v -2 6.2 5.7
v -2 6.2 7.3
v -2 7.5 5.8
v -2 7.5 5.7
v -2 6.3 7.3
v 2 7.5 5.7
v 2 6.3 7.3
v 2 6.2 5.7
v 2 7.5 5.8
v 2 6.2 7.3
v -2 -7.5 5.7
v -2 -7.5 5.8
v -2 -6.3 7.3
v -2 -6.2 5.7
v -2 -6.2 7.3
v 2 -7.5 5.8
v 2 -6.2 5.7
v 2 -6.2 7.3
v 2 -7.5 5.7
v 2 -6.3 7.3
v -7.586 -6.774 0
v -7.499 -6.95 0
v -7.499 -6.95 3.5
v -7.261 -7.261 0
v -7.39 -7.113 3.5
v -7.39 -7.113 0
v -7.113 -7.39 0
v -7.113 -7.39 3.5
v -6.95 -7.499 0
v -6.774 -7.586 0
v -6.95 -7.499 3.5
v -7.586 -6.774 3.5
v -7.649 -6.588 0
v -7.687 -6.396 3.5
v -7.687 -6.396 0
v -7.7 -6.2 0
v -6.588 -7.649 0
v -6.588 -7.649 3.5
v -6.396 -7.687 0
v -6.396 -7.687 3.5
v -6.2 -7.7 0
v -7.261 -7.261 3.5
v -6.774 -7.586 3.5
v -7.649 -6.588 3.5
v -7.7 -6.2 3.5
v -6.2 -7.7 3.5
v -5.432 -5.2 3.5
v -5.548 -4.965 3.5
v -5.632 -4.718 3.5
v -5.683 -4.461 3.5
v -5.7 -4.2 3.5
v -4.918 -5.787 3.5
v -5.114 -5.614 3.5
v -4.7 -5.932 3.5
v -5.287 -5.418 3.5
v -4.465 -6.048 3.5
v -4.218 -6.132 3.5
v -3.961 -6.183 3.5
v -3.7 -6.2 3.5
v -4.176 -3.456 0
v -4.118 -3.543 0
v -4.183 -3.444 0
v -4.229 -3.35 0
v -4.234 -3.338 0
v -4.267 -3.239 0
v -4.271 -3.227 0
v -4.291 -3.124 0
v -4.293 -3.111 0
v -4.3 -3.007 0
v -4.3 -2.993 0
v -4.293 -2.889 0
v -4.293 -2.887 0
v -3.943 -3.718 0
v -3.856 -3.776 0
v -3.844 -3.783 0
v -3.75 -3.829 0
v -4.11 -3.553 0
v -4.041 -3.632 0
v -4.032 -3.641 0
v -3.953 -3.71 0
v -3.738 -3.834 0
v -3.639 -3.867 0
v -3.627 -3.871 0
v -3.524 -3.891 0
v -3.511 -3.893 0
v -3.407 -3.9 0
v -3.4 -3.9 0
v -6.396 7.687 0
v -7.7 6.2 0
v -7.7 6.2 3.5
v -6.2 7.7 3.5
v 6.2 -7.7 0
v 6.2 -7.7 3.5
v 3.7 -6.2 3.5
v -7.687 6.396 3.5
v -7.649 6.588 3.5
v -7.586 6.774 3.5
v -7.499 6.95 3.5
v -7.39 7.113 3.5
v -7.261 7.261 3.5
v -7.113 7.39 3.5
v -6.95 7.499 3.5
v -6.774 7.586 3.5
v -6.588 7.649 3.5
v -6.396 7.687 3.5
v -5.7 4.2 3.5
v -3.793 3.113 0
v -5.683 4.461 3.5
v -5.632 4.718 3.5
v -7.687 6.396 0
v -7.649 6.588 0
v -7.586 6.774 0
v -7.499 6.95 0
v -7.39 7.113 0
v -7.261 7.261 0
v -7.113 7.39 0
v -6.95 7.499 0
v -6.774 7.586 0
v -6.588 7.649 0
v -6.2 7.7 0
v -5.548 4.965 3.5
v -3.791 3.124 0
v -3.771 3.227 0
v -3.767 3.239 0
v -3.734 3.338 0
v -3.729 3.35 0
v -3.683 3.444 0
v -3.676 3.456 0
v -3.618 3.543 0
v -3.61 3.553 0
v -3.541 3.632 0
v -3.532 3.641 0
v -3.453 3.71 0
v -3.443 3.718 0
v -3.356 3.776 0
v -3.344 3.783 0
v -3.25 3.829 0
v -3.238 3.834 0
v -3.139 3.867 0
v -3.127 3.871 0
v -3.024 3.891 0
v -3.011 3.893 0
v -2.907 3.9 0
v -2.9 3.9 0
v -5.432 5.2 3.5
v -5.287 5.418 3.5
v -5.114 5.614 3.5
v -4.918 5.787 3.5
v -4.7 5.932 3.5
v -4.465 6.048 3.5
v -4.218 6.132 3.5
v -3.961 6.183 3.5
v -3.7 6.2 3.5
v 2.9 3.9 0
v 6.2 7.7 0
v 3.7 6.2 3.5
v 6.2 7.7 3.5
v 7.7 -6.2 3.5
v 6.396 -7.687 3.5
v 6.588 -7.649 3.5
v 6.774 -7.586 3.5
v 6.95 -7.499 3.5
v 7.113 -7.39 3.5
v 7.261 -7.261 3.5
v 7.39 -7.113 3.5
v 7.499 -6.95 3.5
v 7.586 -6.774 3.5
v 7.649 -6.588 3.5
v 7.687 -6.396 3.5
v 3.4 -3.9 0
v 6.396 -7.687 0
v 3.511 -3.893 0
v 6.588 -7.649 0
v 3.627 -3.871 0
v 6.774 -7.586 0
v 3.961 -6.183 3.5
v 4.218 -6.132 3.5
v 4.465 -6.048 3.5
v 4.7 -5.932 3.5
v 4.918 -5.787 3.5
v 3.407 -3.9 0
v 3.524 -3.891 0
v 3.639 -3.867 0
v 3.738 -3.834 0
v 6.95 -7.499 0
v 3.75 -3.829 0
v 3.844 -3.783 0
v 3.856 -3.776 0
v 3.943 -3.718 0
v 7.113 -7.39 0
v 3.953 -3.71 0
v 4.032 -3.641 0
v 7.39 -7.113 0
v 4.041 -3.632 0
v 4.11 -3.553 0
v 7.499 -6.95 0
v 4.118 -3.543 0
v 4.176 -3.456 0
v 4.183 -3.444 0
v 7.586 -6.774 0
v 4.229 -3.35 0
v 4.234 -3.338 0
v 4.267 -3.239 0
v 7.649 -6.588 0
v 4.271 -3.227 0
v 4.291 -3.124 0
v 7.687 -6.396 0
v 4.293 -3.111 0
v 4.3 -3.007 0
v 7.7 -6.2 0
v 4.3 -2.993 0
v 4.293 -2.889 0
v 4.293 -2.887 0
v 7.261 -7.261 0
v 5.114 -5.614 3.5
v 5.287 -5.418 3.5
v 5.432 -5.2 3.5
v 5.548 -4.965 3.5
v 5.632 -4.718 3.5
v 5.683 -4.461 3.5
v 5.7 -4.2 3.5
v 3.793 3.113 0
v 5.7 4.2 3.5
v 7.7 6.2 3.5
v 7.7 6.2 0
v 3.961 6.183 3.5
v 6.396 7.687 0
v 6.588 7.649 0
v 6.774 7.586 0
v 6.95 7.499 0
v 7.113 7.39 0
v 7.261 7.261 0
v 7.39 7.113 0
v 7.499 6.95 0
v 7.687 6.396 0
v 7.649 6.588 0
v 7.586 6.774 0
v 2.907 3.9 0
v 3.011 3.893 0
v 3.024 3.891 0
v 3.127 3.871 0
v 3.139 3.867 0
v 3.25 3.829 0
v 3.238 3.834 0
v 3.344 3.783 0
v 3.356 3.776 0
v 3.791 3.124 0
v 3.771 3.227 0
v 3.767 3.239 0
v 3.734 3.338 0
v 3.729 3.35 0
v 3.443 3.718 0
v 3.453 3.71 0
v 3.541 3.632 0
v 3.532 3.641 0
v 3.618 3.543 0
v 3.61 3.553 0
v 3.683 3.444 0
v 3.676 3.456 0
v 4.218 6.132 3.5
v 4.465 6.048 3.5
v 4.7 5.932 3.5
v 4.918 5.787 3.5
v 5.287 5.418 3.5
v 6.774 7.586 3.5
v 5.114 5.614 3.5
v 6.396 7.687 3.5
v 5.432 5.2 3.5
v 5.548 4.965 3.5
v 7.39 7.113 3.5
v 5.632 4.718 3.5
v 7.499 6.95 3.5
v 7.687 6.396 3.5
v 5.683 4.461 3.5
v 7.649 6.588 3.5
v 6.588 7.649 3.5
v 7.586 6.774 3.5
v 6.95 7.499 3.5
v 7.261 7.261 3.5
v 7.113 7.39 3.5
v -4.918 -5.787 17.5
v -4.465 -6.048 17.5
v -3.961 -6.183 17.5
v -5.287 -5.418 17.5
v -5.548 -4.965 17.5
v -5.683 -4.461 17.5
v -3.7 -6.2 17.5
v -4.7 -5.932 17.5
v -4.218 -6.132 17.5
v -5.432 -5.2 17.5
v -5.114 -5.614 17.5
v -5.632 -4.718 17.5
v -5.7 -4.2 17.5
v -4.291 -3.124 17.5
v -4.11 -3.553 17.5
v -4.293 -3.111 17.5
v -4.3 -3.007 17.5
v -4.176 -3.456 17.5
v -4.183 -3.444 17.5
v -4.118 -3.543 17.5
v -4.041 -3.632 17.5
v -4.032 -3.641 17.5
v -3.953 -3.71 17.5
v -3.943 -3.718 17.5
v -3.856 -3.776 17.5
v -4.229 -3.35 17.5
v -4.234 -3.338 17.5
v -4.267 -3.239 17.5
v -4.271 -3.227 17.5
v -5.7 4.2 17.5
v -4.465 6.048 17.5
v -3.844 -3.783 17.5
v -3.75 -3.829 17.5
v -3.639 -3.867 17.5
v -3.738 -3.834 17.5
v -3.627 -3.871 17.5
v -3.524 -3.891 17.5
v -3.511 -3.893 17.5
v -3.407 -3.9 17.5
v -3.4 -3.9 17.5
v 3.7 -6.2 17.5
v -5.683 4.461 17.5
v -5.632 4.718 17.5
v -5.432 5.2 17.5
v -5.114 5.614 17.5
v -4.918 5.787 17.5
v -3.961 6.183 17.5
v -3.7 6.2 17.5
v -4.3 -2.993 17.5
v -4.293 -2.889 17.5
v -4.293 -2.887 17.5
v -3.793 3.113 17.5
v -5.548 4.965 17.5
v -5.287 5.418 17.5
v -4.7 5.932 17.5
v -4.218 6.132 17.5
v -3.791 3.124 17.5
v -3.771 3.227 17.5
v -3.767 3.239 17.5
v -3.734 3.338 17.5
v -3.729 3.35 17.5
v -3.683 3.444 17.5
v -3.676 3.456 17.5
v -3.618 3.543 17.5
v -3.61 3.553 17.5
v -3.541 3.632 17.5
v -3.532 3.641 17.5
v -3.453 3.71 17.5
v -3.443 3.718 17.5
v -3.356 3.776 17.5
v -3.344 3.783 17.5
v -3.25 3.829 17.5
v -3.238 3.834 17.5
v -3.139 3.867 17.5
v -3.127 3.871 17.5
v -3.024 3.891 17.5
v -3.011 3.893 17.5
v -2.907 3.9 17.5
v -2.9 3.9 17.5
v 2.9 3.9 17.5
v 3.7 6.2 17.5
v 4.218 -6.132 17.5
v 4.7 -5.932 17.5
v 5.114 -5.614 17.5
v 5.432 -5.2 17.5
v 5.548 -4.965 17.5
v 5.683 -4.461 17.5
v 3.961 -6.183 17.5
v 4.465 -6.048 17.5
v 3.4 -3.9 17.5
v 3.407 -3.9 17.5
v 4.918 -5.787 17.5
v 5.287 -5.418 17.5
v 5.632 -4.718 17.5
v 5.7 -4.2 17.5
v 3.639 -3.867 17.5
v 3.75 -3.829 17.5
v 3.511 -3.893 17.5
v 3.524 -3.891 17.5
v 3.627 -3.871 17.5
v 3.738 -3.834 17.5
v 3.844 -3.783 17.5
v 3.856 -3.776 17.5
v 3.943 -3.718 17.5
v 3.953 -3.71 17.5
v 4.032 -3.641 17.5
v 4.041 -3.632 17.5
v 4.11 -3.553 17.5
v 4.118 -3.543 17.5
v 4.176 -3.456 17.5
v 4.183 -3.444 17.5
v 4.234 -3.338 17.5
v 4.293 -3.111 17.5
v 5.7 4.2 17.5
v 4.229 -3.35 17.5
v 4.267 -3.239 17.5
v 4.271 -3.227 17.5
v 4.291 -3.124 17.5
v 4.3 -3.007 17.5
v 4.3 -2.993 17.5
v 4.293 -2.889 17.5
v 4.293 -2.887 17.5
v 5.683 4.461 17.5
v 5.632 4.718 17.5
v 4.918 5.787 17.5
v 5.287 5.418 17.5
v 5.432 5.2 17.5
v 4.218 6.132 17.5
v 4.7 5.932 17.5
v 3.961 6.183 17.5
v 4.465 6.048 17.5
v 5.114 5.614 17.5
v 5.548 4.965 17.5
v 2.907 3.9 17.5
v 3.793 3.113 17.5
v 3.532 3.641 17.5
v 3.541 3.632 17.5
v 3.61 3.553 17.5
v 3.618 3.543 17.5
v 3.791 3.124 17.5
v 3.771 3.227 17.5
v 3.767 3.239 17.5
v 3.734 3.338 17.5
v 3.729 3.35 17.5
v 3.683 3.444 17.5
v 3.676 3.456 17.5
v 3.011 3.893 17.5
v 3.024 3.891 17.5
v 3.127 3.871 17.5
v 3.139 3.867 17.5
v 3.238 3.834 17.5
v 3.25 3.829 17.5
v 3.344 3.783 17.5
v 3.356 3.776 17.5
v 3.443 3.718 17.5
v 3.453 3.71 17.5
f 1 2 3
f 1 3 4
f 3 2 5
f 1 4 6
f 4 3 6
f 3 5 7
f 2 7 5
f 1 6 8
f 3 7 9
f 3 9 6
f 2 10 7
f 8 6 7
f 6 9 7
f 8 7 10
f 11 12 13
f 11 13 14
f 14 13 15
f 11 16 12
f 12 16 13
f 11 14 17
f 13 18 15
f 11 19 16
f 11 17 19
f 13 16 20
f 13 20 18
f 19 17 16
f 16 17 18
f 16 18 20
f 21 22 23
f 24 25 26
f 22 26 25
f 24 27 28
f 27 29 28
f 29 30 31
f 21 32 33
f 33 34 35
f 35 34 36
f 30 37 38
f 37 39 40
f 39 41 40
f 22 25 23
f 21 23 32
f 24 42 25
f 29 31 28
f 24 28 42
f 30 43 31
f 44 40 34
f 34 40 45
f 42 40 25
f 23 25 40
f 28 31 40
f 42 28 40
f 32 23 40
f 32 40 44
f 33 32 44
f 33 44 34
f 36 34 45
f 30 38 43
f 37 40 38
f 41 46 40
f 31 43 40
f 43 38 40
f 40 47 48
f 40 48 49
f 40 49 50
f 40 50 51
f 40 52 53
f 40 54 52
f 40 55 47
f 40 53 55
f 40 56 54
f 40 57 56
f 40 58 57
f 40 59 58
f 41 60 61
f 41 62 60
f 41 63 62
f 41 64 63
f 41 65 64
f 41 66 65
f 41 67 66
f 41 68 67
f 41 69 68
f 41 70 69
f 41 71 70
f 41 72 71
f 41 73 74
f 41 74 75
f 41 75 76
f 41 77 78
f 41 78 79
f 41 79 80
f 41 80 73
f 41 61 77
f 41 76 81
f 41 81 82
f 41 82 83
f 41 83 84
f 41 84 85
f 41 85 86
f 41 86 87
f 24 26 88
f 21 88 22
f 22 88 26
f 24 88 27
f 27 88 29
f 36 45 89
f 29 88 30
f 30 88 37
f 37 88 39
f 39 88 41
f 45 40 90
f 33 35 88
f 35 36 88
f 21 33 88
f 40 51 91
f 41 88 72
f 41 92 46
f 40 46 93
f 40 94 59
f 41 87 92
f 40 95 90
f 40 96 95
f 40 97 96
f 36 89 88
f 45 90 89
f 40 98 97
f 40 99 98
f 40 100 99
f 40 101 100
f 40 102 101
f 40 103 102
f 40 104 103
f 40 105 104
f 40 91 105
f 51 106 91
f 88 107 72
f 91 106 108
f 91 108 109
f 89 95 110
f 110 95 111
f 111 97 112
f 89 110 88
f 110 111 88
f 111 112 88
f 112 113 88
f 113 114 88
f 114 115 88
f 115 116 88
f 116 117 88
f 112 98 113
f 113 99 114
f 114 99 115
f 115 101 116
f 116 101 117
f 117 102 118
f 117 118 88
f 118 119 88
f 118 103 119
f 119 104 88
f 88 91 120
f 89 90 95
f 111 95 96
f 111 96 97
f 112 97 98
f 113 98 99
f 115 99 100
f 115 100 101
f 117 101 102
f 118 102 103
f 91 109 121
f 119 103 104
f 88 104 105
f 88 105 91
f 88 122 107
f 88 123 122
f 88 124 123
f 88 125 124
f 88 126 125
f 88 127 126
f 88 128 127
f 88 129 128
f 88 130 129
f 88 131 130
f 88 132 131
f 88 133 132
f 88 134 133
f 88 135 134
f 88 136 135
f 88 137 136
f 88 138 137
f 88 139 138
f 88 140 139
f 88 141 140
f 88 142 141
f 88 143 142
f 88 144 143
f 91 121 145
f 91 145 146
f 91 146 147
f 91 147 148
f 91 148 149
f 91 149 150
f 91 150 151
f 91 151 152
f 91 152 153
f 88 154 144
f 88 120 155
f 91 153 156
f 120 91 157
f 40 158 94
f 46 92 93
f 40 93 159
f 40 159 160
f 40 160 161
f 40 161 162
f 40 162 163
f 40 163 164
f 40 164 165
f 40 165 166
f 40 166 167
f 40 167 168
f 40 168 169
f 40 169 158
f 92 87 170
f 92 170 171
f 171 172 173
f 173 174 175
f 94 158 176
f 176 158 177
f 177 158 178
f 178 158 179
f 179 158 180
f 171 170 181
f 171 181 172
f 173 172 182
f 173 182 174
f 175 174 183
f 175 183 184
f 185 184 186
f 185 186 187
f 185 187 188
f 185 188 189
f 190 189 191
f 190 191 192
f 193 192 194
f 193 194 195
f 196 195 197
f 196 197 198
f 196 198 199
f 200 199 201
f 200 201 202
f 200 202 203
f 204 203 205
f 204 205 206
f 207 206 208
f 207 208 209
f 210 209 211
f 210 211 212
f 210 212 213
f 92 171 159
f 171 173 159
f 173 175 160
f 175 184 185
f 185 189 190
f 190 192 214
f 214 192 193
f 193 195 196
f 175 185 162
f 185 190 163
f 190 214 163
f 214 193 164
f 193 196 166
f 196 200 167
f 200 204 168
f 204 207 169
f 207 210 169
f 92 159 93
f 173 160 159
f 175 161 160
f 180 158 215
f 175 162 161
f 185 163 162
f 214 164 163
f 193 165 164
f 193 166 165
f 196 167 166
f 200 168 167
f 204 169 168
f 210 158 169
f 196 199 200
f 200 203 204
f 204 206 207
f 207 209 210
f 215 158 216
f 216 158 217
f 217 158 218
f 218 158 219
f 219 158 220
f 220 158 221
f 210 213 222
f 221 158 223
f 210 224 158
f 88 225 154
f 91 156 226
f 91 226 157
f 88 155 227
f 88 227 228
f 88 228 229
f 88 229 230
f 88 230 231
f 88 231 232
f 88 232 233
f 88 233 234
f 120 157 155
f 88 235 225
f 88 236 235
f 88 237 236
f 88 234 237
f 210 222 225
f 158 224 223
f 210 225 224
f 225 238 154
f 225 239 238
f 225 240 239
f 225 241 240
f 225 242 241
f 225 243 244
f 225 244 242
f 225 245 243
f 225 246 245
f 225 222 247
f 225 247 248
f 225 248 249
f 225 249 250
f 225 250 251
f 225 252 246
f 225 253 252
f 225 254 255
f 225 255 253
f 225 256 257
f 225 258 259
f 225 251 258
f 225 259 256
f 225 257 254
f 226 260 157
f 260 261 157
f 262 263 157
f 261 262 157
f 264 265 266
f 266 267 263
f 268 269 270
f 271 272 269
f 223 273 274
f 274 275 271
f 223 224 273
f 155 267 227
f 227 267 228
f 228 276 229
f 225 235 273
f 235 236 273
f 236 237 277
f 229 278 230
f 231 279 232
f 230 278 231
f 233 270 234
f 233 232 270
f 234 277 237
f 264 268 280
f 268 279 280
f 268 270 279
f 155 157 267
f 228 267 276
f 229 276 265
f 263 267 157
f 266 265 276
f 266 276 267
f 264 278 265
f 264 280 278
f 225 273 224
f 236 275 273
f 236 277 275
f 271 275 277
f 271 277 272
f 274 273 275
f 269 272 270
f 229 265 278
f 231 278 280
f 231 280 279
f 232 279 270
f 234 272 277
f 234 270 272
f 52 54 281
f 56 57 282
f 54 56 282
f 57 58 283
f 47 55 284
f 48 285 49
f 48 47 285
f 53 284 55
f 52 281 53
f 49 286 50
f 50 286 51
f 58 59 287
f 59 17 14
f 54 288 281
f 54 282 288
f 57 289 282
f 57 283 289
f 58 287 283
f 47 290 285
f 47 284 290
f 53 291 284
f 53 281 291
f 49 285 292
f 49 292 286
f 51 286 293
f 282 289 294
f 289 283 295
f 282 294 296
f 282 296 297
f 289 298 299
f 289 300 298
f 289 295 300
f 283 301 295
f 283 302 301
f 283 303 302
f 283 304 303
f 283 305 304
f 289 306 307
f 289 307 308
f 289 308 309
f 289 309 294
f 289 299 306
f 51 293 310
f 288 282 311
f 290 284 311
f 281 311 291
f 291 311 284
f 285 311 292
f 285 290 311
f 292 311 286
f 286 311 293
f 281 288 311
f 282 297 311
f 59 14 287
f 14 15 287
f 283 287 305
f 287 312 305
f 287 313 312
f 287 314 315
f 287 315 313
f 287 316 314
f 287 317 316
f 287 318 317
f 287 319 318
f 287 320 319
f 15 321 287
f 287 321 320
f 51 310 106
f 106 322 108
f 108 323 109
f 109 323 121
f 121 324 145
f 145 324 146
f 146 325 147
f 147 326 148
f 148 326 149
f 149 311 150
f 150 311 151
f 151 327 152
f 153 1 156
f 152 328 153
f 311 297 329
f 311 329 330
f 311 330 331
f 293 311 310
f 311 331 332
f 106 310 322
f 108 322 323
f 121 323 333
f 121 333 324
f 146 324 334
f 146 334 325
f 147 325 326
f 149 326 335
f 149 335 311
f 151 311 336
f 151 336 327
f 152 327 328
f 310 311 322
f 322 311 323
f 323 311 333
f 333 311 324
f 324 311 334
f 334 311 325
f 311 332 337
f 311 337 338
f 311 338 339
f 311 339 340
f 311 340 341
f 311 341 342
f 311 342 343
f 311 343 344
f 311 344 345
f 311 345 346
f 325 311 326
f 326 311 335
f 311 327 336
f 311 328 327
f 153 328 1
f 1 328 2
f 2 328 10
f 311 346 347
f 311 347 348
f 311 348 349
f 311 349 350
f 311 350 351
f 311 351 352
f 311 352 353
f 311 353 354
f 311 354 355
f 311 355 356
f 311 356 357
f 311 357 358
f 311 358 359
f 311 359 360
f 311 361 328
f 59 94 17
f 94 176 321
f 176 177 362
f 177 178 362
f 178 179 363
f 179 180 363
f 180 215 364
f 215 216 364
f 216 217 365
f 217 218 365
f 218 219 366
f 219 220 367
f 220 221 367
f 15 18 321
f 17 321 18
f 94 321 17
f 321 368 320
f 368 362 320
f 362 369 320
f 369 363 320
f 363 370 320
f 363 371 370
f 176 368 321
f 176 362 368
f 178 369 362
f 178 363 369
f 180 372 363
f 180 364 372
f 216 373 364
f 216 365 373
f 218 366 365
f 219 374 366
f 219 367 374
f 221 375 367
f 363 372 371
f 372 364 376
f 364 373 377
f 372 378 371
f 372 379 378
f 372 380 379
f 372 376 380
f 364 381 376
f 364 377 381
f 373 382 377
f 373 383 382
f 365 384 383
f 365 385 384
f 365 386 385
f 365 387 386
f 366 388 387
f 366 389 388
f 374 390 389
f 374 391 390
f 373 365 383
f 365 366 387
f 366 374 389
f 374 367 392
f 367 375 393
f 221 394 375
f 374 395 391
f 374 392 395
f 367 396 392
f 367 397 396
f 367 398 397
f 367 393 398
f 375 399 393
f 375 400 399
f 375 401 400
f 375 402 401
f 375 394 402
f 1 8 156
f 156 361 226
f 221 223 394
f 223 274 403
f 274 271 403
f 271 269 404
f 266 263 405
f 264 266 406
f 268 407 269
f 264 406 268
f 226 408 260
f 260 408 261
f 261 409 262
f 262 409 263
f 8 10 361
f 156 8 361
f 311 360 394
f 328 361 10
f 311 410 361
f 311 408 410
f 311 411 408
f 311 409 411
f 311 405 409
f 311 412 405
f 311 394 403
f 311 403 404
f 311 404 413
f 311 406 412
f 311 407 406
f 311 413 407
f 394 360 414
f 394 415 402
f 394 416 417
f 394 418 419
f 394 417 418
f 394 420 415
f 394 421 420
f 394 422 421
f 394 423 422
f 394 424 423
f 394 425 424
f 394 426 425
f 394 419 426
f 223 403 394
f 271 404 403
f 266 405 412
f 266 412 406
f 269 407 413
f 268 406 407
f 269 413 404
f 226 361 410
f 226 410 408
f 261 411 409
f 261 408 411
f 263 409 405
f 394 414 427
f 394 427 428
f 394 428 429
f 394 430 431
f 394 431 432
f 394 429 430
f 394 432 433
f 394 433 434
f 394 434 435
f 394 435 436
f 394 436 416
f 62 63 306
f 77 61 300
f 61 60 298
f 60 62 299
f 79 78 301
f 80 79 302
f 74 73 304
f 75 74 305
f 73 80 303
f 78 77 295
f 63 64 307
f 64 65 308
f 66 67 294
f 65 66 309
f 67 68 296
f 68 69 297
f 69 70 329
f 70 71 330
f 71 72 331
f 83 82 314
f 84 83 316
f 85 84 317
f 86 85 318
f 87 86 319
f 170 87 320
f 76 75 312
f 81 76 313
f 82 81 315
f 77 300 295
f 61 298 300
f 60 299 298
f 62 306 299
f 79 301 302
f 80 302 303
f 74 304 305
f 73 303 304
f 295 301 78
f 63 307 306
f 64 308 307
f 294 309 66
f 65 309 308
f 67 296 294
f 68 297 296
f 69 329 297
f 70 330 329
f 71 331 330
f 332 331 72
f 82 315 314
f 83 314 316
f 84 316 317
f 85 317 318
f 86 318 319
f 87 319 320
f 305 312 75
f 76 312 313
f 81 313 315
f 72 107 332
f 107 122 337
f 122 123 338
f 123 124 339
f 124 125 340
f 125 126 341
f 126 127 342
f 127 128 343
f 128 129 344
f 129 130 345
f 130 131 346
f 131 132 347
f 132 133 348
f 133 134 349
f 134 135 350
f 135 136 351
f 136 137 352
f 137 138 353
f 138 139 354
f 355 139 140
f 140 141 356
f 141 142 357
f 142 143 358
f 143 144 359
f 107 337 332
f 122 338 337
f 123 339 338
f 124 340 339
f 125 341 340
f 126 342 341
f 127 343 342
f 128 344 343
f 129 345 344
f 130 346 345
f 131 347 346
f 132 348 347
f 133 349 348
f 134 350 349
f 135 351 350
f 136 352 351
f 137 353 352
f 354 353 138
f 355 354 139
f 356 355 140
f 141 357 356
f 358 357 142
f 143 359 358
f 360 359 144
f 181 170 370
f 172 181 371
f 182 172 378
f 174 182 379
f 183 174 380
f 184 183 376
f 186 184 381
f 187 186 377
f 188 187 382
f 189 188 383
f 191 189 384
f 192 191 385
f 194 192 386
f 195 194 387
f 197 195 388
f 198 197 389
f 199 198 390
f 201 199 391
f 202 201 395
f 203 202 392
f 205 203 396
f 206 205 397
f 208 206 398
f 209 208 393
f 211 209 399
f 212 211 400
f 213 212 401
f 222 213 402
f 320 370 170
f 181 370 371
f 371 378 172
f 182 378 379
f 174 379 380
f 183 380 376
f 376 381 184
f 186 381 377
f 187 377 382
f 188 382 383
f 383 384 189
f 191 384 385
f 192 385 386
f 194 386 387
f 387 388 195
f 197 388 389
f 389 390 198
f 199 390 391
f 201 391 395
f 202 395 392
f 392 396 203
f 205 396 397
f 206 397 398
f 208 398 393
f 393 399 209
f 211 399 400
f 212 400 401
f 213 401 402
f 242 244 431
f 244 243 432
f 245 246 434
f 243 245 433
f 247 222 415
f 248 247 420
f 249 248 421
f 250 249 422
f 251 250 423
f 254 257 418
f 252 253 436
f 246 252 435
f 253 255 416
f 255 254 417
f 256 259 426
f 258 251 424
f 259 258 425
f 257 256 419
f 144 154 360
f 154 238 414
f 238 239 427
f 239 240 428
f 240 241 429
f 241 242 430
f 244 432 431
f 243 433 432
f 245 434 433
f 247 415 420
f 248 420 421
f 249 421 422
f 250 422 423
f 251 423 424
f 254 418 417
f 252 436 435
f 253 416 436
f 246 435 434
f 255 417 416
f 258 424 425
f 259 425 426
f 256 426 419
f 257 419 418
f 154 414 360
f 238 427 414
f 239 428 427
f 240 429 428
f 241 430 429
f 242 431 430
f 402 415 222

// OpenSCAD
// file: parameters.scad
// ============================================
// MODULAR CABLE ORGANIZER - SHARED PARAMETERS
// ============================================
// All dimensions in mm - include this in all files
// ============================================

$fn = 48;

// === TOLERANCES ===
clearance = 0.3;
port_clearance = 0.1;  // Extra clearance for port openings (reduced - 0.2 was too loose for USB-C)
wall = 1.6;

// === SLOT DIMENSIONS (2:1 aspect ratio) - scaled to 2/3 ===
slot_width = 32;  // Standard wide slot for larger connectors
slot_width_narrow = 16;  // Narrow slot for compact connectors (USB-C, micro-USB, USB-A, Lightning, 3.5mm)
slot_height = 16;  // Height is same for both wide and narrow
slot_depth = 4;  // Reduced from 6mm - less frame depth needed

// === FRAME STRUCTURE ===
frame_wall = 2.0;   // Wall between slots - 6 layers @ 0.4mm nozzle for strength
frame_border = 6;  // Increased by 10mm for mounting holes with countersink
frame_back = 2;     // Slightly thicker for snap catch strength
mount_hole_dia = 3;
countersink_dia = 6;  // Diameter of countersink for screw heads
countersink_depth = 2;  // Depth of countersink

// === DEFAULT GRID (can be overridden in individual files) ===
grid_cols = 2;
grid_rows = 2;

// === INSERT BASE DIMENSIONS ===
insert_width = slot_width - (2 * clearance);
insert_height = slot_height - (2 * clearance);
insert_base_depth = slot_depth - 0.5;

// === NARROW INSERT BASE DIMENSIONS ===
insert_width_narrow = slot_width_narrow - (2 * clearance);
insert_height_narrow = slot_height - (2 * clearance);

// === INSERT BODY (protrudes from frame) ===
insert_body_width = insert_width - 4;
insert_body_height = insert_height - 3;
insert_body_depth = 12;  // Deep enough to accommodate male cable connectors
insert_top_thick = 1.5;  // Top platform thickness

// === NARROW INSERT BODY (protrudes from frame) ===
insert_body_width_narrow = insert_width_narrow - 4;
insert_body_height_narrow = insert_height_narrow - 3;

// === SNAP TABS (on neck/body - catch on back plate) ===
snap_tab_width = 4;
snap_tab_protrude = 1.2;  // How far tab sticks out from body
snap_tab_thick = 1.5;     // Z thickness of tab
snap_tab_offset = 2.2;      // Distance from base to tab bottom on insert (increased to clear frame)

// === CONNECTOR PORT DIMENSIONS & BODY DEPTHS ===
// Port dimensions from reference blueprints
// Body depths sized to match typical male connector lengths

// USB-C: 8.4 x 2.6mm, male connector ~9mm
usbc_w = 8.4;
usbc_h = 2.6;
usbc_r = 1.0;
usbc_body_depth = 9;

// USB-A: 12.0 x 4.5mm (tighter fit based on test print)
usba_w = 12.0;
usba_h = 4.5;
usba_r = 0.5;
usba_body_depth = 13;

// USB Mini: 6.9 x 3.0mm, male connector ~9mm
usb_mini_w = 6.9;
usb_mini_h = 3.0;
usb_mini_r = 0.5;
usb_mini_body_depth = 9;

// USB Micro-B: 7.0 x 1.8mm (tighter fit based on test print)
usb_micro_w = 7.0;
usb_micro_h = 1.8;
usb_micro_r = 0.3;
usb_micro_body_depth = 7;

// USB-B: 8.4 x 7.6mm (printer/keyboard style connector)
usb_b_w = 8.4;
usb_b_h = 7.6;
usb_b_r = 0.8;
usb_b_body_depth = 14;

// Lightning: 7.6 x 1.5mm, male connector ~8mm (measured from actual connector)
lightning_w = 7.6;
lightning_h = 1.5;
lightning_r = 0.5;
lightning_body_depth = 8;

// HDMI: 13.9 x 4.45mm (adjusted taper for better fit)
hdmi_w = 13.9;
hdmi_h = 4.45;
hdmi_r = 0.5;
hdmi_body_depth = 16;

// 3.5mm Audio Jack: male plug ~14mm (3.5mm = ~3.5mm, but use 3.6mm for snug fit)
audio_jack_dia = 3.6;
audio_jack_body_depth = 14;

// Blank/Label: recessed area for label
label_w = 30;
label_h = 12;
label_depth = 0.8;

// === CALCULATED VALUES ===
frame_total_depth = frame_back + slot_depth;
grid_width = (grid_cols * slot_width) + ((grid_cols - 1) * frame_wall);
grid_height = (grid_rows * slot_height) + ((grid_rows - 1) * frame_wall);
frame_width = grid_width + (2 * frame_border);
frame_height_total = grid_height + (2 * frame_border);
insert_total_depth = insert_base_depth + insert_body_depth;
// main file
// ============================================
// PRINT FILE: USB-B Insert (NARROW)
// ============================================
// Narrow width version for space-efficient frames
// USB-B is the square connector for printers/keyboards
// Print with base down (no supports needed)
// ============================================

include <insert_base.scad>

// Render narrow USB-B insert
insert_usb_b_narrow();
